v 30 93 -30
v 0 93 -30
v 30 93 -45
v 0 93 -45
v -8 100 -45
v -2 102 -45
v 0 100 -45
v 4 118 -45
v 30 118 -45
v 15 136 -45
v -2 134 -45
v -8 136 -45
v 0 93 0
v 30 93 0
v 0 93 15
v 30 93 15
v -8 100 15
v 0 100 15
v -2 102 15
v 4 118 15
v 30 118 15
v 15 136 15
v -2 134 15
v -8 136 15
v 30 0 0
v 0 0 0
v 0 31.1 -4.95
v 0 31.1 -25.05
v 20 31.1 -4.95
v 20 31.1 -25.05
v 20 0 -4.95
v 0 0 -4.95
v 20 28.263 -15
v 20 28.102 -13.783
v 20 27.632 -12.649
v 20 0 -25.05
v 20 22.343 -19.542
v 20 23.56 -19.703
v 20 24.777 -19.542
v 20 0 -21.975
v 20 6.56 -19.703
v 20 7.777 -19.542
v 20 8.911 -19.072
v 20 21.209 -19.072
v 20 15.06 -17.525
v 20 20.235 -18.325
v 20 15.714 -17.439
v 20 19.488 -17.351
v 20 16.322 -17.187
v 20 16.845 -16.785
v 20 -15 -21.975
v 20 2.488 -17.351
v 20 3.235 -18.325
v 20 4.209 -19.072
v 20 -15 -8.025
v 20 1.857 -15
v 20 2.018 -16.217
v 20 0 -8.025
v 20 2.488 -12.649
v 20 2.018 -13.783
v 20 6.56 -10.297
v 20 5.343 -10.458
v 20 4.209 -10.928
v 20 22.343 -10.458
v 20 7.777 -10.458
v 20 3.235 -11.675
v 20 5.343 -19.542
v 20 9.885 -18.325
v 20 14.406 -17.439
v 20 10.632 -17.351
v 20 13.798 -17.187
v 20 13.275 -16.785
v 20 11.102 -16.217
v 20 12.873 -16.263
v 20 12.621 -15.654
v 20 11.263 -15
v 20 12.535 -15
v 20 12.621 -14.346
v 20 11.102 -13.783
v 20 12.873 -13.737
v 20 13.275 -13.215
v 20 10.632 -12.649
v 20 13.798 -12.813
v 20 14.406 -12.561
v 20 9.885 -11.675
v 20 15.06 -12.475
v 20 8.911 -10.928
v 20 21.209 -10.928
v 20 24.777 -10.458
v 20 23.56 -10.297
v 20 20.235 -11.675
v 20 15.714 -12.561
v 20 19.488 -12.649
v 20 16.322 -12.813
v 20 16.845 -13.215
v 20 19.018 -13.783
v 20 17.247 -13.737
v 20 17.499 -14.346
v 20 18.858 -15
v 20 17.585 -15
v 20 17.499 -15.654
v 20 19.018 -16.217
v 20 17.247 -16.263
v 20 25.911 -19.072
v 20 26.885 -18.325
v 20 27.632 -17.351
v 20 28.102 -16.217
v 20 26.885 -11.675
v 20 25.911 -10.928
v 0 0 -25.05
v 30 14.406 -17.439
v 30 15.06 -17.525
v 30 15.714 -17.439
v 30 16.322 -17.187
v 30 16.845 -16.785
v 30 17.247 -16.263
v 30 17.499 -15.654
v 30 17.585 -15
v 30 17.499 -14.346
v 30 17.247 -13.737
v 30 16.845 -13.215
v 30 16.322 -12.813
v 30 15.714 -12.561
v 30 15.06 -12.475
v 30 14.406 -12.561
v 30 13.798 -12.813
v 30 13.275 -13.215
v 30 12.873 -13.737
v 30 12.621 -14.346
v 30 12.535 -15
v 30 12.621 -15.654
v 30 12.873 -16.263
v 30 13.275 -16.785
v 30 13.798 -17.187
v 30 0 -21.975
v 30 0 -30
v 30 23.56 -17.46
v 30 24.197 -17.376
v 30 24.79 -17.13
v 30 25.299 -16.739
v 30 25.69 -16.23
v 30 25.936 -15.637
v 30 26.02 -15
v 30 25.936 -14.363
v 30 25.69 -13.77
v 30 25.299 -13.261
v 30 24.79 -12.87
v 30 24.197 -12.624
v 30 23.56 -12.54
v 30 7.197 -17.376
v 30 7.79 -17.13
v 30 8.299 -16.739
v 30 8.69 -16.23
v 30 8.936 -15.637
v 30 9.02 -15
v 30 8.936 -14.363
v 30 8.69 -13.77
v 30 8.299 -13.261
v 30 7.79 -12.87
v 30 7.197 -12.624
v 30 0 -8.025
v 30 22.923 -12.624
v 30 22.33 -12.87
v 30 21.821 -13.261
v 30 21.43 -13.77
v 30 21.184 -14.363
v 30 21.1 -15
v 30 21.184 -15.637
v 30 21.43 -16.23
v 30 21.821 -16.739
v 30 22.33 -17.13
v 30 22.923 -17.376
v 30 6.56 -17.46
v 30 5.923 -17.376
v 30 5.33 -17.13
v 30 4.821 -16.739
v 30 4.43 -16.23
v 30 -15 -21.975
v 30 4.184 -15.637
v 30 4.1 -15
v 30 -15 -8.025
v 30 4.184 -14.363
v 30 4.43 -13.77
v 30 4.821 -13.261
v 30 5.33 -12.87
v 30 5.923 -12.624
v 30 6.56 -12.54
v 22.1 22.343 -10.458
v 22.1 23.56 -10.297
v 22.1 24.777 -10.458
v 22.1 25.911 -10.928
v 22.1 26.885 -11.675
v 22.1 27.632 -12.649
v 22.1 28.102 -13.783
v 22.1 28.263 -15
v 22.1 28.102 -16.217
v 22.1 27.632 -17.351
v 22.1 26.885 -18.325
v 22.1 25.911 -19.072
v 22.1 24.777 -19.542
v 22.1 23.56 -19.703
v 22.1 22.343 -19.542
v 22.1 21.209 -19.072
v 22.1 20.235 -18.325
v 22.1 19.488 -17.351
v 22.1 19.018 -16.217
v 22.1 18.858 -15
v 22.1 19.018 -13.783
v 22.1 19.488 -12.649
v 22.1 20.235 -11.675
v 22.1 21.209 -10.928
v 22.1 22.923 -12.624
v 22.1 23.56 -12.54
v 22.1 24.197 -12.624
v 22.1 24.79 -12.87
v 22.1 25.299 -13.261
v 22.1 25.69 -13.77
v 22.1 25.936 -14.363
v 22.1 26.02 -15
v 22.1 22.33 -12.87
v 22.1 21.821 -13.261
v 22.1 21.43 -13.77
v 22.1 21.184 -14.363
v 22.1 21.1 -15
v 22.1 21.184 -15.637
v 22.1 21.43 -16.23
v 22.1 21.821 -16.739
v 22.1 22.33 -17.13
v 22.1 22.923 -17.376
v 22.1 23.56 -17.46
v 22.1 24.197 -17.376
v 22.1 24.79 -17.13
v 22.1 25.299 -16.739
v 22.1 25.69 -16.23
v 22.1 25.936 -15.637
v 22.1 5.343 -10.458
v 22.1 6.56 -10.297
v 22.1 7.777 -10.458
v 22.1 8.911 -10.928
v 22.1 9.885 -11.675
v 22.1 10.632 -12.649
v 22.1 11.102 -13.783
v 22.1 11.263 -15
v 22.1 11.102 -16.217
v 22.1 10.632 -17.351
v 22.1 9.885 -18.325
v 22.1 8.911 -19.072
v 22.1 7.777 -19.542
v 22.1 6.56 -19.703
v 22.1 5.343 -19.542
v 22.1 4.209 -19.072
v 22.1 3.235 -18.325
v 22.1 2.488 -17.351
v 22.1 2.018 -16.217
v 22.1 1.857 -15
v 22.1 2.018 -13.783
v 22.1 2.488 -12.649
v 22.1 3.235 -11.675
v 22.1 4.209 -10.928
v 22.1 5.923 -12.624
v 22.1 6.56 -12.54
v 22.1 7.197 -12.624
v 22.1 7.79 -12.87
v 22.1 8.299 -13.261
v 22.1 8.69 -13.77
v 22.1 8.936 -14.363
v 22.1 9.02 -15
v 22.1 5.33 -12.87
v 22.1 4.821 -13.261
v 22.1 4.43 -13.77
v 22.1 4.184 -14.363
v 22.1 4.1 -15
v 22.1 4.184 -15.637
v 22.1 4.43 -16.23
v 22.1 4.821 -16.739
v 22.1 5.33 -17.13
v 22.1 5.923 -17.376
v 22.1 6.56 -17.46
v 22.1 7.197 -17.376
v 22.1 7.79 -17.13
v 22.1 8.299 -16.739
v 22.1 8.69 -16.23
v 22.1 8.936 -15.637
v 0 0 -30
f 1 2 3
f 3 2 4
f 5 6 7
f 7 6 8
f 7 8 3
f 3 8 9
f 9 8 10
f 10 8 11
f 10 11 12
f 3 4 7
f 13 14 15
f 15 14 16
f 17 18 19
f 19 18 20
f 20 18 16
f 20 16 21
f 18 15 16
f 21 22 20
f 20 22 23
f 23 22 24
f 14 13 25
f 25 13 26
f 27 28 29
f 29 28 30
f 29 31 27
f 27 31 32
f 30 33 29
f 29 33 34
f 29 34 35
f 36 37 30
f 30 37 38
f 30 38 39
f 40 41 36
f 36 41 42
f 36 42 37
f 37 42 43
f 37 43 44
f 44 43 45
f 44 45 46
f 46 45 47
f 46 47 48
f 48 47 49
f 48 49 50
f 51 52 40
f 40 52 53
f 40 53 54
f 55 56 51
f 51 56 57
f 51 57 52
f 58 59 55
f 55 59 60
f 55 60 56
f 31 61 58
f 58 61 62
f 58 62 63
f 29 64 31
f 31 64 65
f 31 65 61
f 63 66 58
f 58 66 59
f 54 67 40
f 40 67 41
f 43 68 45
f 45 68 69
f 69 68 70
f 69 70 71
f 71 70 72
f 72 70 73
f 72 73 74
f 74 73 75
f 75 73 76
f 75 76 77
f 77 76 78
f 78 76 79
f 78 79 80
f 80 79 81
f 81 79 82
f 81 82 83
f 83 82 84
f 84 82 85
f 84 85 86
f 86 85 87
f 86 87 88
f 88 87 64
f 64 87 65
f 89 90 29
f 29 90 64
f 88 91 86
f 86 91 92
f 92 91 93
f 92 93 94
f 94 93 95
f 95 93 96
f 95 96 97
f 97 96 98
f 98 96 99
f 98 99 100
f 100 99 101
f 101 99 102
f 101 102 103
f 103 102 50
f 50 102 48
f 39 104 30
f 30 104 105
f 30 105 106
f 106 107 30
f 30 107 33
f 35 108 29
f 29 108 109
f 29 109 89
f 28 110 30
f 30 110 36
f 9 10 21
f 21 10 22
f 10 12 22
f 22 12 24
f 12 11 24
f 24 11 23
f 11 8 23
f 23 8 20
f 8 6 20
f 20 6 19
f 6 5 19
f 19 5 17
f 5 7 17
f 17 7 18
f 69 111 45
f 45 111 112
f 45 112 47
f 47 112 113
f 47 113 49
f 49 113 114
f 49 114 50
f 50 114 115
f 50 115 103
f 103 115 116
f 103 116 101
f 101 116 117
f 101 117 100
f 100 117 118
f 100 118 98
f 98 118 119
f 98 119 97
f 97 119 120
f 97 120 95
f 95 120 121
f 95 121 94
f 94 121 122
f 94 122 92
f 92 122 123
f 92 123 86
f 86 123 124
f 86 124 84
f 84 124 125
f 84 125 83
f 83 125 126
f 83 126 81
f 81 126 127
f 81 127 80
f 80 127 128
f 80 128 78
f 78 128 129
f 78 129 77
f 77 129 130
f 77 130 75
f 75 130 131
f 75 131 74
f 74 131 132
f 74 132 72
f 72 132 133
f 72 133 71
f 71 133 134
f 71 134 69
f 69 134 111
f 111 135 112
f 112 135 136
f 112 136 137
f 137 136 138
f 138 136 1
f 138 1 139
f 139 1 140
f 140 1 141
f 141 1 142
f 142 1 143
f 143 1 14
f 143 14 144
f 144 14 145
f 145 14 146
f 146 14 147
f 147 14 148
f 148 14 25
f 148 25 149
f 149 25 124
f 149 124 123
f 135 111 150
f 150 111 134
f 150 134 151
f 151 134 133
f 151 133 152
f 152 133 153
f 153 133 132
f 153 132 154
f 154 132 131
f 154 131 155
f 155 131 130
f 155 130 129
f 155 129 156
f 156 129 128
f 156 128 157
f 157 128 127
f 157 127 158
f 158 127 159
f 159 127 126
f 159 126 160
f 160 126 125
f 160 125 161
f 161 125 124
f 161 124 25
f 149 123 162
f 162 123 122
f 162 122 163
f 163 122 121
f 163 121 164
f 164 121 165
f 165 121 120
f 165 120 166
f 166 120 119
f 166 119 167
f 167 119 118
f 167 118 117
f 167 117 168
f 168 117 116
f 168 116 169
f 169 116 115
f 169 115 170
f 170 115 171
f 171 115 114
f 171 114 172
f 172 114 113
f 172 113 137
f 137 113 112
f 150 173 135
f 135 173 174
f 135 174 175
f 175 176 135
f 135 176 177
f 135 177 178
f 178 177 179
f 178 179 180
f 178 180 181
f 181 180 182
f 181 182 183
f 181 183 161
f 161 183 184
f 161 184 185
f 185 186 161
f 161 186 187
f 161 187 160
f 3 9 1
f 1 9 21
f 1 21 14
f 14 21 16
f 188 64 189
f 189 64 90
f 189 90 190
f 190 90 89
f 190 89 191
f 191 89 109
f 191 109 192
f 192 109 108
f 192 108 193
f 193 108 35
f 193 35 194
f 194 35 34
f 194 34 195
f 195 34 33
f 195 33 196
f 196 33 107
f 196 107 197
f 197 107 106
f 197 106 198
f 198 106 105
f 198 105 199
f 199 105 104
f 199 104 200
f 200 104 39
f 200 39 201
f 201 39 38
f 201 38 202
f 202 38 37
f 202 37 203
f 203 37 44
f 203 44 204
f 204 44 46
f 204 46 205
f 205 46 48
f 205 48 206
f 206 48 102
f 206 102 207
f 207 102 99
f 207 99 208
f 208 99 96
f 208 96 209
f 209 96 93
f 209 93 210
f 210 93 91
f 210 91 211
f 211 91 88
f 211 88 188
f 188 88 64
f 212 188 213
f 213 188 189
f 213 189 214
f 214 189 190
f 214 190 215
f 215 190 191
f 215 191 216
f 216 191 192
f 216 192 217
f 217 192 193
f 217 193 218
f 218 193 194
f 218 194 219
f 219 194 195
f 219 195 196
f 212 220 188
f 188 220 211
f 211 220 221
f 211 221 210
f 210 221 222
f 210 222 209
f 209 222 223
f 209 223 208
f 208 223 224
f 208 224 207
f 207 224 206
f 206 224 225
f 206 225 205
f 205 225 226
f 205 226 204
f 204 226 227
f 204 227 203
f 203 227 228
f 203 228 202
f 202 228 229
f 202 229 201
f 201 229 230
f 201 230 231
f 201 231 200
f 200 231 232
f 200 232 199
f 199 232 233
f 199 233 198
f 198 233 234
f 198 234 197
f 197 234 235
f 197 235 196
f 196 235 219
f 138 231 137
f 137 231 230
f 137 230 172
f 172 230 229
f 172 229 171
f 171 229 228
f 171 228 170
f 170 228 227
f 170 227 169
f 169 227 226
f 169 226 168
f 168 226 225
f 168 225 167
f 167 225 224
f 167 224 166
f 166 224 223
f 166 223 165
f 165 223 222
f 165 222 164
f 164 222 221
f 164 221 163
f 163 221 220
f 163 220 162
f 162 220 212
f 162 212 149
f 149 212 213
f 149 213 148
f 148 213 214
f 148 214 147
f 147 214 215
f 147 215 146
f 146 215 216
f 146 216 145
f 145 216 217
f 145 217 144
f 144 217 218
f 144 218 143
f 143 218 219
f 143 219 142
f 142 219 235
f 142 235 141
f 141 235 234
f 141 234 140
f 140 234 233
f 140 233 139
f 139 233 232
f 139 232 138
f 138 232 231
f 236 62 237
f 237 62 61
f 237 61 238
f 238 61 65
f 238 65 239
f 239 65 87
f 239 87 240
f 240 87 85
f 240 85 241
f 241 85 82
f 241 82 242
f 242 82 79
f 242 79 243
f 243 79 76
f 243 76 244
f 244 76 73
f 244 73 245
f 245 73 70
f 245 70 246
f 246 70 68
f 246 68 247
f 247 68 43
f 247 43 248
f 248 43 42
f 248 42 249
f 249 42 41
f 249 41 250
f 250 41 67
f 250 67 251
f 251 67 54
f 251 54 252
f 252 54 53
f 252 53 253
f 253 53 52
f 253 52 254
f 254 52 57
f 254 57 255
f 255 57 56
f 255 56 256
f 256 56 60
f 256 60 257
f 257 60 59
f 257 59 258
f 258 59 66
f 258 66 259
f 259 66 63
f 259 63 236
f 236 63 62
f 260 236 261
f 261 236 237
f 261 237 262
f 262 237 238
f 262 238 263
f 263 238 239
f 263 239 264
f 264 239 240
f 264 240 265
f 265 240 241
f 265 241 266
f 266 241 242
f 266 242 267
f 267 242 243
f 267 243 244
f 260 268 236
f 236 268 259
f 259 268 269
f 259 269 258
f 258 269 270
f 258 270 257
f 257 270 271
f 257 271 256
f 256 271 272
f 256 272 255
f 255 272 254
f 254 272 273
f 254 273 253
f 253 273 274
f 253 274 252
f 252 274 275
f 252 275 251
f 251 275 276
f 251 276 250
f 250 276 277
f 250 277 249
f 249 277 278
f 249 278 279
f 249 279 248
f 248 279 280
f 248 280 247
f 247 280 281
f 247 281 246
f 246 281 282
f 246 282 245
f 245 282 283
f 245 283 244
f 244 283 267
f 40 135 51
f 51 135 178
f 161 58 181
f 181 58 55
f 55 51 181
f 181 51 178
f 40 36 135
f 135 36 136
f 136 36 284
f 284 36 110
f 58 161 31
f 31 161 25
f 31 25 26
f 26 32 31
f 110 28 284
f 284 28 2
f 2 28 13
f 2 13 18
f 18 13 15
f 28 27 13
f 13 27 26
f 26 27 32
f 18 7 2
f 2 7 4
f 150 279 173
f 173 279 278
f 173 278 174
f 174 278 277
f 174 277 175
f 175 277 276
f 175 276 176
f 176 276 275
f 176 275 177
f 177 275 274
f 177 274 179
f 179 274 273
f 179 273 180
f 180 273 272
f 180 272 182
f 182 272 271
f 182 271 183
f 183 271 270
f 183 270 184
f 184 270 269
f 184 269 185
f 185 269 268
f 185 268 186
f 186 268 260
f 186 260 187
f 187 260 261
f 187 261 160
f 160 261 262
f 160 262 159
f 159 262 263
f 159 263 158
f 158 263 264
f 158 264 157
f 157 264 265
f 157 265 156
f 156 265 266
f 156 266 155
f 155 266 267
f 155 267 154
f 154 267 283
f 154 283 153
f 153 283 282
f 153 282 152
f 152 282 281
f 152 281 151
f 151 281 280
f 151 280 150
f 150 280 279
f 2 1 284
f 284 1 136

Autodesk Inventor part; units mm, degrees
ref_plane "YZ Plane" through (0, 0, 0) normal (1, 0, 0) x (0, 1, 0)
ref_plane "XZ Plane" through (0, 0, 0) normal (0, 1, 0) x (-1, 0, 0)
sketch "Sketch1" plane through (0, 0, 0) normal (0, 0, 1) x (1, 0, 0)
  line L0 (0, 0) -> (25, 0)
  line L1 (25, 0) -> (25, 40)
  line L2 (25, 40) -> (0, 40)
  line L3 (0, 40) -> (0, 0)
  dimension "d1" = 25
  dimension "d2" = 40
  dimension "d3" = 25
extrude "Extrusion1" add sketch "Sketch1" against normal blind 30
sketch "Sketch2" plane through (25, 0, 0) normal (1, 0, 0) x (0, 0, -1)
  line L0 (0, 0) -> (30, 0) projected
  circle A0 centre (15, 6.56) radius 2.46
extrude "Extrusion2" cut sketch "Sketch2" against normal blind 30
sketch "Sketch3" plane through (0, 0, 0) normal (-1, 0, 0) x (0, 0, 1)
  line L0 (0, 0) -> (-30, 0) projected
  line L1 (-25.05, 0) -> (-4.95, 0)
  line L2 (-4.95, 0) -> (-4.95, 33.12)
  line L3 (-4.95, 33.12) -> (-25.05, 33.12)
  line L4 (-25.05, 33.12) -> (-25.05, 0)
  dimension "d11" = 20.1
extrude "Extrusion3" cut sketch "Sketch3" against normal blind 20
sketch "Sketch4" plane through (0, 0, 0) normal (0, -1, 0) x (1, 0, 0)
  line L0 (20, -4.95) -> (20, -25.05) projected
  line L1 (20, -15) -> (25, -15)
  line L2 (25, 0) -> (25, -30) projected
  line L3 (20, -8.025) -> (25, -8.025)
  line L4 (25, -8.025) -> (25, -21.975)
  line L5 (25, -21.975) -> (20, -21.975)
  line L6 (20, -21.975) -> (20, -8.025)
  line L7 (20, -8.025) -> (25, -21.975) construction
  line L8 (25, -8.025) -> (20, -21.975) construction
  line L9 (25, -12.54) -> (25, -17.46) projected
  point P0 (0, 0)
  point P1 (22.5, -15)
  dimension "d14" = 13.95
extrude "Extrusion4" add sketch "Sketch4" along normal blind 15
sketch "Sketch5" plane through (20, 0, 0) normal (-1, 0, 0) x (0, 0, 1)
  circle A0 centre (-15, 6.56) radius 2.46 projected
  circle A1 centre (-15, 6.56) radius 4.7025
  circle A2 centre (-15, 6.56) radius 2.46 projected
  circle A3 centre (-15, 6.56) radius 2.46
  point P0 (0, 0)
  dimension "d17" = 9.405
extrude "Extrusion5" cut sketch "Sketch5" against normal blind 2.1
sketch "Sketch6" plane through (25, 0, 0) normal (1, 0, 0) x (0, 0, -1)
  circle A0 centre (15, 6.56) radius 4.7025 projected
  line L0 (15, 6.56) -> (15, 23.56)
  circle A1 centre (15, 23.56) radius 2.46
  point P0 (0, 0)
  dimension "d20" = 17
  dimension "d21" = 4.92
extrude "Extrusion6" cut sketch "Sketch6" against normal blind 10 contours A1
sketch "Sketch7" plane through (20, 0, 0) normal (-1, 0, 0) x (0, 0, 1)
  circle A0 centre (-15, 23.56) radius 2.46 projected
  circle A1 centre (-15, 23.56) radius 4.7025
  point P0 (0, 0)
  dimension "d24" = 9.405
extrude "Extrusion7" cut sketch "Sketch7" against normal blind 2.1
sketch "Sketch9" plane through (25, 0, 0) normal (1, 0, 0) x (0, 0, -1)
  circle A0 centre (15, 6.56) radius 2.46 projected
  circle A1 centre (15, 6.56) radius 2.46
  circle A2 centre (15, 23.56) radius 2.46 projected
  circle A3 centre (15, 23.56) radius 2.46
  line L0 (30, 40) -> (30, 0) projected
  line L1 (30, 0) -> (30, 40)
  line L2 (30, 40) -> (0, 40)
  line L3 (0, 40) -> (0, 0)
  line L4 (0, 0) -> (8.025, 0) projected
  line L5 (21.975, 0) -> (21.975, -15)
  line L6 (21.975, -15) -> (8.025, -15)
  line L7 (8.025, -15) -> (8.025, 0)
  line L8 (0, 0) -> (8.025, 0)
  line L9 (21.975, 0) -> (30, 0)
extrude "Extrusion8" add sketch "Sketch9" along normal blind 5
sketch "Sketch10" plane through (0, 40, 0) normal (0, 1, 0) x (1, 0, 0)
  line L0 (0, 30) -> (30, 30) projected
  line L1 (30, 0) -> (0, 0) projected
  line L2 (0, 30) -> (30, 30)
  line L3 (30, 30) -> (30, 0)
  line L4 (30, 0) -> (0, 0)
  line L5 (0, 0) -> (0, 30)
extrude "Extrusion9" add sketch "Sketch10" along normal blind 30
sketch "Sketch12" plane through (30, 0, 0) normal (1, 0, 0) x (0, 0, -1)
  circle A0 centre (15, 6.56) radius 2.46 projected
  line L0 (15, 6.56) -> (15, 15.06)
  circle A1 centre (15, 15.06) radius 2.525
  point P0 (0, 0)
  dimension "d31" = 8.5
  dimension "d33" = 5.05
extrude "Extrusion10" cut sketch "Sketch12" against normal blind 30 contours A1
sketch "Sketch14" plane through (0, 0, 0) normal (0, 0, 1) x (1, 0, 0)
  line L0 (30, 70) -> (0, 70) projected
  line L1 (0, 100) -> (-8, 100)
  line L2 (30, 0) -> (30, 70) projected
  line L3 (30, 118) -> (30, 70)
  line L4 (30, 105) -> (30, 100)
  line L5 (-2, 134) -> (-8, 136)
  line L6 (-2, 134) -> (4, 118)
  line L7 (-2, 102) -> (-8, 100)
  line L8 (-2, 102) -> (4, 118)
  line L9 (0, 70) -> (30, 70) projected
  line L10 (0, 70) -> (0, 100)
  line L11 (15, 136) -> (30, 118)
  line L12 (-8, 136) -> (15, 136)
  point P0 (0, 0)
  dimension "d47" = 30
extrude "Extrusion12" add sketch "Sketch14" against normal blind 30
sketch "Sketch15" plane through (0, 0, -25.05) normal (-1, 0, 0) x (0, 0, 1)
  line L0 (0, 33.12) -> (20.1, 33.12) projected
  line L1 (20.1, 33.12) -> (20.1, 0) projected
  line L2 (0, 33.12) -> (20.1, 33.12)
  line L3 (20.1, 33.12) -> (20.1, 31.1)
  line L4 (20.1, 31.1) -> (0, 31.1)
  line L5 (0, 31.1) -> (0, 33.12)
  point P0 (25.05, 0)
  dimension "d57" = 2.02
extrude "Extrusion13" add sketch "Sketch15" against normal blind 20
sketch "Sketch23" plane through (0, 0, 0) normal (0, 0, 1) x (1, 0, 0)
  line L0 (0, 100) -> (-8, 100) projected
  line L1 (-8, 100) -> (-2, 102) projected
  line L2 (-8, 100) -> (-2, 102)
  line L3 (-2, 102) -> (4, 118) projected
  line L4 (-2, 102) -> (4, 118)
  line L5 (-2, 134) -> (4, 118) projected
  line L6 (4, 118) -> (-2, 134)
  line L7 (-2, 134) -> (-8, 136) projected
  line L8 (-2, 134) -> (-8, 136)
  line L9 (-8, 136) -> (15, 136) projected
  line L10 (-8, 136) -> (15, 136)
  line L11 (30, 118) -> (15, 136) projected
  line L12 (15, 136) -> (30, 118)
  line L13 (30, 118) -> (30, 93)
  line L14 (30, 0) -> (30, 118) projected
  line L15 (30, 93) -> (0, 93)
  line L16 (0, 93) -> (0, 100)
  line L17 (-8, 100) -> (0, 100)
  point P0 (0, 0)
  dimension "d85" = 25
extrude "Extrusion14" add sketch "Sketch23" along normal blind 15
ref_plane "Work Plane1" through (0, 0, -15) normal (0, 0, 1) x (1, 0, 0)
mirror "Mirror1" about plane through (0, 0, -15) normal (0, 0, 1) of "Extrusion14"
properties part number "32mm_x_60mm"
